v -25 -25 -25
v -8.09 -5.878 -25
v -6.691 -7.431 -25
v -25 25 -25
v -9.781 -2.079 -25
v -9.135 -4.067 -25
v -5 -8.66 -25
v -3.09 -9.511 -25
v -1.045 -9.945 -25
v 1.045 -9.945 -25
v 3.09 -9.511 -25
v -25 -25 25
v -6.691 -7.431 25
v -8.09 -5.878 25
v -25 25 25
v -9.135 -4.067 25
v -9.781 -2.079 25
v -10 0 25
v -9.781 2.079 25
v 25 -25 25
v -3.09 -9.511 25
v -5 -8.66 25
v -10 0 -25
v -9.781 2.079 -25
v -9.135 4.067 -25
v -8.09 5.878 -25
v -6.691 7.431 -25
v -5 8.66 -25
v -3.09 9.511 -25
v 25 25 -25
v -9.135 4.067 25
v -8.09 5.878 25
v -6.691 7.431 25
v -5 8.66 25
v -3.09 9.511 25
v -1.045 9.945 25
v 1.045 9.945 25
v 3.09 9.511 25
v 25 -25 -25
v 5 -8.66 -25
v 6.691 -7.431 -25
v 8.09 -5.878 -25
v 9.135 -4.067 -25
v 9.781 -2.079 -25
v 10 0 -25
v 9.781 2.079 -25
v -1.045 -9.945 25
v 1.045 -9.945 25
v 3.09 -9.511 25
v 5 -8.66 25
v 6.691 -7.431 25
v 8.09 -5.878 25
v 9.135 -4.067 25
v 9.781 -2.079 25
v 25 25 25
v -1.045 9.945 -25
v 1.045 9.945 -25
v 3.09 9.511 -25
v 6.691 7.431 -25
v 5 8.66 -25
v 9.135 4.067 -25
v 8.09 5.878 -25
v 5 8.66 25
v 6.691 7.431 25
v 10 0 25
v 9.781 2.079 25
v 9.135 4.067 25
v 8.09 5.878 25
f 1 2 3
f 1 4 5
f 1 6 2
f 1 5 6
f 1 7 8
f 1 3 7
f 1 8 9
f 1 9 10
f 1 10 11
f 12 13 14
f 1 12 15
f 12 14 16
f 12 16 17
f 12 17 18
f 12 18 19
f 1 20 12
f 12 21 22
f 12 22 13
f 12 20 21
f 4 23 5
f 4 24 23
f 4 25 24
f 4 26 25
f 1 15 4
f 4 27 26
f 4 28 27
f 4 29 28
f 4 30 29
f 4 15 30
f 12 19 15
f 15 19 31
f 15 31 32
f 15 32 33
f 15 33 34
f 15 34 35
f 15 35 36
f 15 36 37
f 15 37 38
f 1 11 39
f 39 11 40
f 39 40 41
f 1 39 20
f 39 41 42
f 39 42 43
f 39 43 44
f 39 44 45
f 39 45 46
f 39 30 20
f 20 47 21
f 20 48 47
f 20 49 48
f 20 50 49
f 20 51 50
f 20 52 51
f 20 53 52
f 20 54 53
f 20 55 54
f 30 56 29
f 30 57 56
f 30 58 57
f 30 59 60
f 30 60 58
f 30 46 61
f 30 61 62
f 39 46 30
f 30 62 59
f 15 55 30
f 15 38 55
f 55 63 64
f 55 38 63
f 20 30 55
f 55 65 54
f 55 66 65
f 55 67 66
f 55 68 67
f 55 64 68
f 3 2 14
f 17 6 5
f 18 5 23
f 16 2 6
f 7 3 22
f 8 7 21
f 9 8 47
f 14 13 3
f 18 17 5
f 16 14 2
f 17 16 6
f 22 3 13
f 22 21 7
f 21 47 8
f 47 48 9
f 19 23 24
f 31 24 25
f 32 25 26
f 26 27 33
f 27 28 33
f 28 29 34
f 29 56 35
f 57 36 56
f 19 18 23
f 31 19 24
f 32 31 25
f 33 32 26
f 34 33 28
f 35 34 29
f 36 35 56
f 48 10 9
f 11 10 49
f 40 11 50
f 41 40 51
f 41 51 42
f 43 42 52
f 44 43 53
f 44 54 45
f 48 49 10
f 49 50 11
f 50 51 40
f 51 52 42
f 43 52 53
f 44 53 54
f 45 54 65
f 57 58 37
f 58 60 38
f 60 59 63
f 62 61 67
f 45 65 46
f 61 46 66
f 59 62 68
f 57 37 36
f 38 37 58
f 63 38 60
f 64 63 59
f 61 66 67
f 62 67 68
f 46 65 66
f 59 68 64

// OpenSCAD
difference() {
    cube(50, center = true);
    cylinder(h = 60, d = 20, center = true);
}
